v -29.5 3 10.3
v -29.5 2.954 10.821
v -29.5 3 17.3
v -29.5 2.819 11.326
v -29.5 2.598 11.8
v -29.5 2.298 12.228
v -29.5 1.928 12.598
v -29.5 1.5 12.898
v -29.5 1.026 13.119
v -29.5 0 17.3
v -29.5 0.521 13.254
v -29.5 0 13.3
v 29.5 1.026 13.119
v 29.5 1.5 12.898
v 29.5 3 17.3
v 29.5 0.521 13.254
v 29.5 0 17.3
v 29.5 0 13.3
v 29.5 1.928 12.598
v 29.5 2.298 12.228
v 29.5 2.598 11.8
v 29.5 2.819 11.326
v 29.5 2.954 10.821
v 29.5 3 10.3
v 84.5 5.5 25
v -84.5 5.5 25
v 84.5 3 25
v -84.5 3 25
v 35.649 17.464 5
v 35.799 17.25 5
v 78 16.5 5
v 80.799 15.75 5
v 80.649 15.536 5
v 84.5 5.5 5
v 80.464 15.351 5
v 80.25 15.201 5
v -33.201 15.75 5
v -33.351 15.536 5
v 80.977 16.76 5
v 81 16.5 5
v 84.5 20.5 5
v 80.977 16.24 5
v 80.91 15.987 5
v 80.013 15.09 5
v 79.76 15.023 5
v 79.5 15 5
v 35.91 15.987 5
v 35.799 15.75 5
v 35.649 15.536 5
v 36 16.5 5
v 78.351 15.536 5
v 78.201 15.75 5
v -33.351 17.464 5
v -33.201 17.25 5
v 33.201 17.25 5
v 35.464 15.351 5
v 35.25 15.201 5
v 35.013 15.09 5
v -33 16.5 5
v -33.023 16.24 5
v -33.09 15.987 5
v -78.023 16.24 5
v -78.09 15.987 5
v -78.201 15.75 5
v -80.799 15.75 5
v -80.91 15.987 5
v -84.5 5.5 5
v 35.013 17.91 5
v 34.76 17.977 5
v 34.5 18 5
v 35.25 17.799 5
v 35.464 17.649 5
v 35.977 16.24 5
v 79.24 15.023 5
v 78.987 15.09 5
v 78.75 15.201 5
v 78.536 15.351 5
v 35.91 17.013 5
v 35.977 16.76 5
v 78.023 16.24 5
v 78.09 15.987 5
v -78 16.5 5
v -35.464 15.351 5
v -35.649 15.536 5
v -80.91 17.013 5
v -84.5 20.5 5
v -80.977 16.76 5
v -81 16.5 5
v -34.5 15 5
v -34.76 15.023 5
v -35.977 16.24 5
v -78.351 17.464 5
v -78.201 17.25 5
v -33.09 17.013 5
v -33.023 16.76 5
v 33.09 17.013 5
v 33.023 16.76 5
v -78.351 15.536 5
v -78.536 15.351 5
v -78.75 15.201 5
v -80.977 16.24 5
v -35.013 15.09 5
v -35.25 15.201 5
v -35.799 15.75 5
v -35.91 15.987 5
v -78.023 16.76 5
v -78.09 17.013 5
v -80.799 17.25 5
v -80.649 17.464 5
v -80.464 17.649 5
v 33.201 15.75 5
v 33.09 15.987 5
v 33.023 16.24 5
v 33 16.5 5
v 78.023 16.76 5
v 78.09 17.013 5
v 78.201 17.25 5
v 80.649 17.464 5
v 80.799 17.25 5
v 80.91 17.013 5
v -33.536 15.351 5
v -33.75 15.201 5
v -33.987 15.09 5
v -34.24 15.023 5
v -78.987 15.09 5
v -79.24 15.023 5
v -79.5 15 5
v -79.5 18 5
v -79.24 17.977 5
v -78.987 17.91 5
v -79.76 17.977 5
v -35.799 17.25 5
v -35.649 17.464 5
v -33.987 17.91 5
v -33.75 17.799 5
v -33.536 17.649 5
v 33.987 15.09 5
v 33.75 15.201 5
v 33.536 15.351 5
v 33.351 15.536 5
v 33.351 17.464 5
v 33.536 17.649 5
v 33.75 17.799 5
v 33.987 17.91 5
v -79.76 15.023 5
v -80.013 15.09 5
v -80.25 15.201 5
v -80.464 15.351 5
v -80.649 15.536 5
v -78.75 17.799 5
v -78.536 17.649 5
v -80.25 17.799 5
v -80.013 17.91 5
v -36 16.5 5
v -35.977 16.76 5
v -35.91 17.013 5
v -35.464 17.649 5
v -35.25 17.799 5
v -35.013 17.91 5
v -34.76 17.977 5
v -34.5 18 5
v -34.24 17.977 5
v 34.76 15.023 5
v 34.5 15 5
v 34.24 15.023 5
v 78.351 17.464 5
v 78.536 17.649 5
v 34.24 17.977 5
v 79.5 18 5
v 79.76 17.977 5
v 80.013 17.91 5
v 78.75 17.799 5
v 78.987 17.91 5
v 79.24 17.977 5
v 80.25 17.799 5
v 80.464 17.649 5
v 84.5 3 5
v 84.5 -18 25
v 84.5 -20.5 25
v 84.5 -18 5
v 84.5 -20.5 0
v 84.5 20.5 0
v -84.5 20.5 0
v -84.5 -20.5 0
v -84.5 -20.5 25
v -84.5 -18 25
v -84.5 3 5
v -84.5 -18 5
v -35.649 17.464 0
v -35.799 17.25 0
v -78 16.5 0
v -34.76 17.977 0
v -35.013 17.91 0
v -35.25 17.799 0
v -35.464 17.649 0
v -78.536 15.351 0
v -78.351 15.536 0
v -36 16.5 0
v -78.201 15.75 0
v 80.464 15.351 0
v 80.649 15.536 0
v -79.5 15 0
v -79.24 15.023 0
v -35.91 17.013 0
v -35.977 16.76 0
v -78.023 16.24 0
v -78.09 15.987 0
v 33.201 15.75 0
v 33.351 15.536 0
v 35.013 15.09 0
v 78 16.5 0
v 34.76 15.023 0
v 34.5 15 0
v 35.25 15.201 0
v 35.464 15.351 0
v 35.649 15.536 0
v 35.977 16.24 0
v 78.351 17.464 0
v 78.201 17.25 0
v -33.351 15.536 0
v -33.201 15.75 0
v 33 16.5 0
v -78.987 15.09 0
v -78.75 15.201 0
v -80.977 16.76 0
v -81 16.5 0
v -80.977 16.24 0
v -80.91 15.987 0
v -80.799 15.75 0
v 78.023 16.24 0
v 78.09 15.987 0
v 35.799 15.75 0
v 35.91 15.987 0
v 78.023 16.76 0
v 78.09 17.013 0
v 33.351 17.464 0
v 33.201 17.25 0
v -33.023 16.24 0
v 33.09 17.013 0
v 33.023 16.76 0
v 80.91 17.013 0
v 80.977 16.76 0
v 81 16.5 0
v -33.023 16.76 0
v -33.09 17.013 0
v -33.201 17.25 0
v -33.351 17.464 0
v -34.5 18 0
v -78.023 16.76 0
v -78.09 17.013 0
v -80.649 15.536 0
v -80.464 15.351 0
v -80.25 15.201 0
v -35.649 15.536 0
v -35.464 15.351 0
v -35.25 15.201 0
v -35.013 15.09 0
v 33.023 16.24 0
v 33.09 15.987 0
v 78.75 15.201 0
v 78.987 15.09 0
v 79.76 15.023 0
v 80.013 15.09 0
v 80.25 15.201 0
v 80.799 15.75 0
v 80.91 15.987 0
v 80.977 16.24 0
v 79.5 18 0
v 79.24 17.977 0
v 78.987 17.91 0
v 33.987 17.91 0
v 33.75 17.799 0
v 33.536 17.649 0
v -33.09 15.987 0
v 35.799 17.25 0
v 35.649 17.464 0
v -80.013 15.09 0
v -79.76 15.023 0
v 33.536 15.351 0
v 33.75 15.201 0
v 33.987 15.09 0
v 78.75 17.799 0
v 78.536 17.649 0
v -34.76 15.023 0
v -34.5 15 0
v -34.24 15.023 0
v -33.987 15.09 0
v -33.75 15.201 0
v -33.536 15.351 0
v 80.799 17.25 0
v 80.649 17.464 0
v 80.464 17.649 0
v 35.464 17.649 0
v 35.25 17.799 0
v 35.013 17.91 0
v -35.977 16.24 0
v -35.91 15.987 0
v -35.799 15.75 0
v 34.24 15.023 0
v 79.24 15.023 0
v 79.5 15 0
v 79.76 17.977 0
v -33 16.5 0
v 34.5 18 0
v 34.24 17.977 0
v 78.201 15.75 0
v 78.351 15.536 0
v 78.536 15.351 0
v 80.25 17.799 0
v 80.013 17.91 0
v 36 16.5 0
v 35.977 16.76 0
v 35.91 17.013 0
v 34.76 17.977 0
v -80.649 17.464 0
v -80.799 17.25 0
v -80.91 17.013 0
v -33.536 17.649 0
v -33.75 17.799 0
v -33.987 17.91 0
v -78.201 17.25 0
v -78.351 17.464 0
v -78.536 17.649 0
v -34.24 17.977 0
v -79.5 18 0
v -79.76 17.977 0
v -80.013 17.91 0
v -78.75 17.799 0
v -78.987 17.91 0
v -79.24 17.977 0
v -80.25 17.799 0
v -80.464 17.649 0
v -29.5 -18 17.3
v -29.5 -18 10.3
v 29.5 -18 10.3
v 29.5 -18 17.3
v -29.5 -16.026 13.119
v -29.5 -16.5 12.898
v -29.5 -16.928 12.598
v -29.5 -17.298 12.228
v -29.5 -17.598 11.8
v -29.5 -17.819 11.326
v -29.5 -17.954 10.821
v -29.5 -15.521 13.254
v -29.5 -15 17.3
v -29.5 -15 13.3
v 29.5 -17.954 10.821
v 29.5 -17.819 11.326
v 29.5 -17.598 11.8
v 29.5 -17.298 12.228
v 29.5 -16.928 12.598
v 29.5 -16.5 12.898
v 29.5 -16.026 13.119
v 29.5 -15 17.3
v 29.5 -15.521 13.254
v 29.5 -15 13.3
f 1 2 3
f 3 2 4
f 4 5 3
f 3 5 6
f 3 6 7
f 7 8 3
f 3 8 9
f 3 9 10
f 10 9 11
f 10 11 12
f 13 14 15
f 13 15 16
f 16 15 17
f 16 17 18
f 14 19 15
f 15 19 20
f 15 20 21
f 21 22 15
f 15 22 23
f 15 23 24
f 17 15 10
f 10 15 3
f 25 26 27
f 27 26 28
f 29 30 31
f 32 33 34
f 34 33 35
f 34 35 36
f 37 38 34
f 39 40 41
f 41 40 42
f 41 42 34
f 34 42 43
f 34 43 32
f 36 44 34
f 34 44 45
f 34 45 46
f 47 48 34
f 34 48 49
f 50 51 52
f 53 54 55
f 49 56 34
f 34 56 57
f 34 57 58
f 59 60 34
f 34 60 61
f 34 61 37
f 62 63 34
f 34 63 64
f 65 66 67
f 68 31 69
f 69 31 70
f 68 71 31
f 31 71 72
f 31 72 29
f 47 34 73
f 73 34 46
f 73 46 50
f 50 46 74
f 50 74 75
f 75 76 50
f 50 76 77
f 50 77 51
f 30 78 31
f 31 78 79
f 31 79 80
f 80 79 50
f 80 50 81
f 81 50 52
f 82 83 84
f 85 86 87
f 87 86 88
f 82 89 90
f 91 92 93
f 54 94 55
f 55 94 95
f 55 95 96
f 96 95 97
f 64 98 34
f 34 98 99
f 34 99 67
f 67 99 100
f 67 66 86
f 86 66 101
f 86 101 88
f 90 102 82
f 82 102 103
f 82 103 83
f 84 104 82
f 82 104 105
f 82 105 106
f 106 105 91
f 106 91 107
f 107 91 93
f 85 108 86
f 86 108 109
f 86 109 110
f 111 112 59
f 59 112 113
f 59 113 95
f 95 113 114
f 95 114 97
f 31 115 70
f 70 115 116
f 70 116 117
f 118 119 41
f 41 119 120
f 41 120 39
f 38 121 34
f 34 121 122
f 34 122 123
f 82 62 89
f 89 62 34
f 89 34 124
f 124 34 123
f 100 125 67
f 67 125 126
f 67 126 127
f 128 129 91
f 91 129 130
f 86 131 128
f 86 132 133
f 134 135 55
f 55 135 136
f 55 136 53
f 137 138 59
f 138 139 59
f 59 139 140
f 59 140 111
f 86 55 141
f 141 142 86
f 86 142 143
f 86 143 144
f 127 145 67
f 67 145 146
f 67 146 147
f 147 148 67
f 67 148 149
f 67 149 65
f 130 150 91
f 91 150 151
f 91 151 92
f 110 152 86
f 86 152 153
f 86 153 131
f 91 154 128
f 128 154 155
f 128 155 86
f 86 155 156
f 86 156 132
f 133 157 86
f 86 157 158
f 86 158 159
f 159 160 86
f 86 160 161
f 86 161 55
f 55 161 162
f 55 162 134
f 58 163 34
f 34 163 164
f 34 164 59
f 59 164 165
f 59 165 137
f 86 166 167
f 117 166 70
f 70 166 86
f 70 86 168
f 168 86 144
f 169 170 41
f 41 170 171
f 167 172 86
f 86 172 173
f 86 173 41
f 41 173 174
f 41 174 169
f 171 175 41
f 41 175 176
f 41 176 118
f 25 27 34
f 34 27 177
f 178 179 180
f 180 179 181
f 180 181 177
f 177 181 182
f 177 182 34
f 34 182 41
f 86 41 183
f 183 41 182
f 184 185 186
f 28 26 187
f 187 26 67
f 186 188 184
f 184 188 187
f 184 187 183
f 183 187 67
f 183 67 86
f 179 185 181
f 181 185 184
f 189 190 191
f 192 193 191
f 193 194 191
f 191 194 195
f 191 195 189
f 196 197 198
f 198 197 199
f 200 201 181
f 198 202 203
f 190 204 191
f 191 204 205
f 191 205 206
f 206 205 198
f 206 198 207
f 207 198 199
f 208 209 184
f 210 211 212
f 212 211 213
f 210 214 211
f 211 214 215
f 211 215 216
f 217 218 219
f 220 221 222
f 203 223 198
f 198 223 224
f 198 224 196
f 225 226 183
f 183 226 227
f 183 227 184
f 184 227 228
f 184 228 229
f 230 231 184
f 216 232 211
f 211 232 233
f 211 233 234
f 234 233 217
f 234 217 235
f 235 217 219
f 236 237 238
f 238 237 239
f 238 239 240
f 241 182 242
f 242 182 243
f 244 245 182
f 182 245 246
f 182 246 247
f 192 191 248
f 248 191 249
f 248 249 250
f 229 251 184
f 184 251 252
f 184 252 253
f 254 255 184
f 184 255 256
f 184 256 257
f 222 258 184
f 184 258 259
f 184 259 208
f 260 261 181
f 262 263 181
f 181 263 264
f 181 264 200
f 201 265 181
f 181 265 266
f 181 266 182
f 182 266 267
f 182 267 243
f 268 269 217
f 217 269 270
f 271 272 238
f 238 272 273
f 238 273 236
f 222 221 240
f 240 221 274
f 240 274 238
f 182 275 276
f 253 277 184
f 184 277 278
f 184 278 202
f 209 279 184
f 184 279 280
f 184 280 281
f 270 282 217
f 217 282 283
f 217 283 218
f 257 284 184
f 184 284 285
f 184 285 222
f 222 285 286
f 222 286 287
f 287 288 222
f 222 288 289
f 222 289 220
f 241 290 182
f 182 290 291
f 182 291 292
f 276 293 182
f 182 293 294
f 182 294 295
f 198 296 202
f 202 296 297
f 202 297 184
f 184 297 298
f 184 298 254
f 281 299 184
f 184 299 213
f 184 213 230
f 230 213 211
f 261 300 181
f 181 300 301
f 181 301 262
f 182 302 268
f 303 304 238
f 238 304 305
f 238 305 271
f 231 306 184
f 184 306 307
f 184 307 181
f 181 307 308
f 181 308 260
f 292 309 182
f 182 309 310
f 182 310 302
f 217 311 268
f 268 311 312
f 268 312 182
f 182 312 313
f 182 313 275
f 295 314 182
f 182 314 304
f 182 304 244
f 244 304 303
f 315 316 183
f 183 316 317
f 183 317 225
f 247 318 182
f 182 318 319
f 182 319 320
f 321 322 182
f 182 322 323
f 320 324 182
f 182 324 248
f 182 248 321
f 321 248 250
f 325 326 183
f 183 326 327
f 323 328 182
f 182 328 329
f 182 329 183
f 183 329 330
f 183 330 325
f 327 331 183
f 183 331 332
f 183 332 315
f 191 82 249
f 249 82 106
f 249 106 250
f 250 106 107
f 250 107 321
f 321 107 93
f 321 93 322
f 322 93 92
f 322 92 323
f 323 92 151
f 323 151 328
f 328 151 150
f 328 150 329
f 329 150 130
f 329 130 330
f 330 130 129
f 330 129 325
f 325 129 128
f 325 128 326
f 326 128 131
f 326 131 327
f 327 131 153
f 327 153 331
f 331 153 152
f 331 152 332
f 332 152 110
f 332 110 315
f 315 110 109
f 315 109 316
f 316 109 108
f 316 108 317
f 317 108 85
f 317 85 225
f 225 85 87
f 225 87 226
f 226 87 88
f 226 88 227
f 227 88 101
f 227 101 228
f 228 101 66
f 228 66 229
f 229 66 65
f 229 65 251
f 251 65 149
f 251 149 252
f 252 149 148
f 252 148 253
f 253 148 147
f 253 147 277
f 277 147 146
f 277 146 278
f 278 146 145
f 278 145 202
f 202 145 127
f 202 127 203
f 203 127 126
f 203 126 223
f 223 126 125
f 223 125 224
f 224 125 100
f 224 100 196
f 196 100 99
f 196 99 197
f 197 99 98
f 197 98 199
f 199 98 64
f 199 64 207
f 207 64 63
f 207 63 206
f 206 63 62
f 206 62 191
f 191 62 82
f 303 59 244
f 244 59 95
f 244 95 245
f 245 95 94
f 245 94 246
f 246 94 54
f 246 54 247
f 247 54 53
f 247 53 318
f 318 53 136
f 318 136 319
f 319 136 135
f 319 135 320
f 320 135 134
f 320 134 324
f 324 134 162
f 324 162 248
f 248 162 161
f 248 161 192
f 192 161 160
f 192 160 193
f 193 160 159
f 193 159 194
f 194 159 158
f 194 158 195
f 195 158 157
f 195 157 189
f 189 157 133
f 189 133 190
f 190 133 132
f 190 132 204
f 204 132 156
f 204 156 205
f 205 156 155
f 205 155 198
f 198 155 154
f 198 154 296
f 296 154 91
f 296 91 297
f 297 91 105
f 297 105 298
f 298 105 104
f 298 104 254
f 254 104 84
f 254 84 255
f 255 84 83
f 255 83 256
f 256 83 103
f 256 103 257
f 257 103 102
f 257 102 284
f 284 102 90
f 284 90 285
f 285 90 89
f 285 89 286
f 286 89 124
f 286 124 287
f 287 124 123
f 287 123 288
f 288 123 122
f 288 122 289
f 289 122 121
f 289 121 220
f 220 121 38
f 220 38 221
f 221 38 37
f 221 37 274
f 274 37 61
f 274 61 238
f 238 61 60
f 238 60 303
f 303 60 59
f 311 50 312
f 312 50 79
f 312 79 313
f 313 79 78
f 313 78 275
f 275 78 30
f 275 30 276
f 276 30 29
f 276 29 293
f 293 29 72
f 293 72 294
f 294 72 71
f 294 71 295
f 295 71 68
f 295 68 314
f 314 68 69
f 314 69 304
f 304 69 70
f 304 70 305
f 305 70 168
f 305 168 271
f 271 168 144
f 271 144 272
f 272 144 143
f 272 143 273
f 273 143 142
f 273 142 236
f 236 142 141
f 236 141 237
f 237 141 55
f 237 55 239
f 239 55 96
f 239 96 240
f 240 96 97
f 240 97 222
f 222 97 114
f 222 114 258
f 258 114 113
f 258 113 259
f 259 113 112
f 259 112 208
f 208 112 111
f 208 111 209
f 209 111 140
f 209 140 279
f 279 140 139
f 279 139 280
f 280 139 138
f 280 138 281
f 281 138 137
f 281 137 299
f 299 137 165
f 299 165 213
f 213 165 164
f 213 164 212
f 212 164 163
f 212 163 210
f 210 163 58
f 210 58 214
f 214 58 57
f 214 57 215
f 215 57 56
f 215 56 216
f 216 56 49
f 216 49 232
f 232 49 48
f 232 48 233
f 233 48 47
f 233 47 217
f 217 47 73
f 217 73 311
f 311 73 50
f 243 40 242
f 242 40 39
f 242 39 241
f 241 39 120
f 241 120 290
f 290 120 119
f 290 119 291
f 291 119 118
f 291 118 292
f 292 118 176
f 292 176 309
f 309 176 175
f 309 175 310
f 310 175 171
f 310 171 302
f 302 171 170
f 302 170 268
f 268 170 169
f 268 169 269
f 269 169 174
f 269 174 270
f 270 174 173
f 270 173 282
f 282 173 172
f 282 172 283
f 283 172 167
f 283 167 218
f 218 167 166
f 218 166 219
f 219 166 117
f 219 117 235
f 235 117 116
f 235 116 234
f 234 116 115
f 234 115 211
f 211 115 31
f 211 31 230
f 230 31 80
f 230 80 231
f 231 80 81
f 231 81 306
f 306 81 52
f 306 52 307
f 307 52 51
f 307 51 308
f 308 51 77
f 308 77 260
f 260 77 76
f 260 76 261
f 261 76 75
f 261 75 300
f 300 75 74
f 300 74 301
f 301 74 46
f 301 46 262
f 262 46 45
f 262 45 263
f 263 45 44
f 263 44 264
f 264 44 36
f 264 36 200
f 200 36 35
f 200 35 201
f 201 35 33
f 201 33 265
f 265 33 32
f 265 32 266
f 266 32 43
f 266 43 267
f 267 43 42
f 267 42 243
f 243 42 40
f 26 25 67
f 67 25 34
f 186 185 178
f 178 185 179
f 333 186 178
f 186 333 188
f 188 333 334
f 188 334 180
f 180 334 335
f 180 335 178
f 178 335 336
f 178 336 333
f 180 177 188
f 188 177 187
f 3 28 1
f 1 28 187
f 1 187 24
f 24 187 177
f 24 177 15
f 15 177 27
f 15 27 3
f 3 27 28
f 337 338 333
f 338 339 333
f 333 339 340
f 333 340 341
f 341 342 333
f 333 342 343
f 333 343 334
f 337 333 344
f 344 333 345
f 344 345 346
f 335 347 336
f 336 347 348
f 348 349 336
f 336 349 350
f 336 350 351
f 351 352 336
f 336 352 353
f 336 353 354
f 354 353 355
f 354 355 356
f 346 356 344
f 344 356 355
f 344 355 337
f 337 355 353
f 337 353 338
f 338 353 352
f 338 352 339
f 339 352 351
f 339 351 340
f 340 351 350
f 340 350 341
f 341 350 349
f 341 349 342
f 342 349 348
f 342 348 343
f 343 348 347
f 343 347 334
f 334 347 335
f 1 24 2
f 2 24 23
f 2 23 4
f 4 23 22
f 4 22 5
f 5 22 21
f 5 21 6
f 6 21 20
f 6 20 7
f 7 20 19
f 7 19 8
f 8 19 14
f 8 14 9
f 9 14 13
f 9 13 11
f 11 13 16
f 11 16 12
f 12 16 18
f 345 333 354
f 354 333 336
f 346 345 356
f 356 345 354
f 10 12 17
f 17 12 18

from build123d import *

# Parameters (mm, degrees)
SKETCH_1_W          = 169
SKETCH_1_H          = 41
EXTRUDE_2_DEPTH     = 5
SKETCH_3_R          = 1.5
CUT_EXTRUDE_1_DEPTH = 5
SKETCH_4_W          = 169
SKETCH_4_H          = 26
EXTRUDE_3_DEPTH     = 20
SKETCH_5_W          = 20
SKETCH_5_H          = 21
CUT_EXTRUDE_2_DEPTH = 55
SKETCH_6_W          = 20
SKETCH_6_H          = 21
CUT_EXTRUDE_3_DEPTH = 55
CUT_EXTRUDE_6_DEPTH = 59
SKETCH_10_W         = 7.7
SKETCH_10_H         = 21
CUT_EXTRUDE_7_DEPTH = 59
SKETCH_11_W         = 4
SKETCH_11_H         = 15
CUT_EXTRUDE_8_DEPTH = 59


with BuildPart() as part:
    # Эскиз1 → Бобышка-Вытянуть2 (new body)
    with BuildSketch(Plane.XY):
        Rectangle(SKETCH_1_W, SKETCH_1_H)
    extrude(amount=EXTRUDE_2_DEPTH)

    # Эскиз3 → Вырез-Вытянуть1 (cut)
    with BuildSketch(Plane.XY.offset(5)):
        with Locations((79.5, 16.5)):
            Circle(SKETCH_3_R)
        with Locations((34.5, 16.5)):
            Circle(SKETCH_3_R)
        with Locations((-34.5, 16.5)):
            Circle(SKETCH_3_R)
        with Locations((-79.5, 16.5)):
            Circle(SKETCH_3_R)
    extrude(amount=-CUT_EXTRUDE_1_DEPTH, mode=Mode.SUBTRACT)

    # Эскиз4 → Бобышка-Вытянуть3 (add)
    with BuildSketch(Plane.XY.offset(5)):
        with Locations((0, -7.5)):
            Rectangle(SKETCH_4_W, SKETCH_4_H)
    extrude(amount=EXTRUDE_3_DEPTH)

    # Эскиз5 → Вырез-Вытянуть2 (cut)
    with BuildSketch(Plane.ZY.offset(84.5)):
        with Locations((15, -7.5)):
            Rectangle(SKETCH_5_W, SKETCH_5_H)
    extrude(amount=-CUT_EXTRUDE_2_DEPTH, mode=Mode.SUBTRACT)

    # Эскиз6 → Вырез-Вытянуть3 (cut)
    with BuildSketch(Plane(origin=(84.5, 0, 0), x_dir=(0, 0, -1), z_dir=(1, 0, 0))):
        with Locations((-15, -7.5)):
            Rectangle(SKETCH_6_W, SKETCH_6_H)
    extrude(amount=-CUT_EXTRUDE_3_DEPTH, mode=Mode.SUBTRACT)

    # Эскиз7 → Вырез-Вытянуть6 (cut)
    with BuildSketch(Plane(origin=(29.5, 0, 0), x_dir=(0, 0, -1), z_dir=(1, 0, 0))):
        with BuildLine():
            Line((-5, 3), (-10.3, 3))
            ThreePointArc((-10.3, 3), (-12.421320344, 2.121320344), (-13.3, 0))
            Line((-13.3, 0), (-13.3, -15))
            ThreePointArc((-13.3, -15), (-12.421320344, -17.121320344), (-10.3, -18))
            Line((-10.3, -18), (-5, -18))
            Line((-5, -18), (-5, 3))
        make_face()
    extrude(amount=-CUT_EXTRUDE_6_DEPTH, mode=Mode.SUBTRACT)

    # Эскиз10 → Вырез-Вытянуть7 (cut)
    with BuildSketch(Plane(origin=(29.5, 0, 0), x_dir=(0, 0, -1), z_dir=(1, 0, 0))):
        with Locations((-21.15, -7.5)):
            Rectangle(SKETCH_10_W, SKETCH_10_H)
    extrude(amount=-CUT_EXTRUDE_7_DEPTH, mode=Mode.SUBTRACT)

    # Эскиз11 → Вырез-Вытянуть8 (cut)
    with BuildSketch(Plane(origin=(29.5, 0, 0), x_dir=(0, 0, -1), z_dir=(1, 0, 0))):
        with Locations((-15.3, -7.5)):
            Rectangle(SKETCH_11_W, SKETCH_11_H)
    extrude(amount=-CUT_EXTRUDE_8_DEPTH, mode=Mode.SUBTRACT)


solid = part.part
